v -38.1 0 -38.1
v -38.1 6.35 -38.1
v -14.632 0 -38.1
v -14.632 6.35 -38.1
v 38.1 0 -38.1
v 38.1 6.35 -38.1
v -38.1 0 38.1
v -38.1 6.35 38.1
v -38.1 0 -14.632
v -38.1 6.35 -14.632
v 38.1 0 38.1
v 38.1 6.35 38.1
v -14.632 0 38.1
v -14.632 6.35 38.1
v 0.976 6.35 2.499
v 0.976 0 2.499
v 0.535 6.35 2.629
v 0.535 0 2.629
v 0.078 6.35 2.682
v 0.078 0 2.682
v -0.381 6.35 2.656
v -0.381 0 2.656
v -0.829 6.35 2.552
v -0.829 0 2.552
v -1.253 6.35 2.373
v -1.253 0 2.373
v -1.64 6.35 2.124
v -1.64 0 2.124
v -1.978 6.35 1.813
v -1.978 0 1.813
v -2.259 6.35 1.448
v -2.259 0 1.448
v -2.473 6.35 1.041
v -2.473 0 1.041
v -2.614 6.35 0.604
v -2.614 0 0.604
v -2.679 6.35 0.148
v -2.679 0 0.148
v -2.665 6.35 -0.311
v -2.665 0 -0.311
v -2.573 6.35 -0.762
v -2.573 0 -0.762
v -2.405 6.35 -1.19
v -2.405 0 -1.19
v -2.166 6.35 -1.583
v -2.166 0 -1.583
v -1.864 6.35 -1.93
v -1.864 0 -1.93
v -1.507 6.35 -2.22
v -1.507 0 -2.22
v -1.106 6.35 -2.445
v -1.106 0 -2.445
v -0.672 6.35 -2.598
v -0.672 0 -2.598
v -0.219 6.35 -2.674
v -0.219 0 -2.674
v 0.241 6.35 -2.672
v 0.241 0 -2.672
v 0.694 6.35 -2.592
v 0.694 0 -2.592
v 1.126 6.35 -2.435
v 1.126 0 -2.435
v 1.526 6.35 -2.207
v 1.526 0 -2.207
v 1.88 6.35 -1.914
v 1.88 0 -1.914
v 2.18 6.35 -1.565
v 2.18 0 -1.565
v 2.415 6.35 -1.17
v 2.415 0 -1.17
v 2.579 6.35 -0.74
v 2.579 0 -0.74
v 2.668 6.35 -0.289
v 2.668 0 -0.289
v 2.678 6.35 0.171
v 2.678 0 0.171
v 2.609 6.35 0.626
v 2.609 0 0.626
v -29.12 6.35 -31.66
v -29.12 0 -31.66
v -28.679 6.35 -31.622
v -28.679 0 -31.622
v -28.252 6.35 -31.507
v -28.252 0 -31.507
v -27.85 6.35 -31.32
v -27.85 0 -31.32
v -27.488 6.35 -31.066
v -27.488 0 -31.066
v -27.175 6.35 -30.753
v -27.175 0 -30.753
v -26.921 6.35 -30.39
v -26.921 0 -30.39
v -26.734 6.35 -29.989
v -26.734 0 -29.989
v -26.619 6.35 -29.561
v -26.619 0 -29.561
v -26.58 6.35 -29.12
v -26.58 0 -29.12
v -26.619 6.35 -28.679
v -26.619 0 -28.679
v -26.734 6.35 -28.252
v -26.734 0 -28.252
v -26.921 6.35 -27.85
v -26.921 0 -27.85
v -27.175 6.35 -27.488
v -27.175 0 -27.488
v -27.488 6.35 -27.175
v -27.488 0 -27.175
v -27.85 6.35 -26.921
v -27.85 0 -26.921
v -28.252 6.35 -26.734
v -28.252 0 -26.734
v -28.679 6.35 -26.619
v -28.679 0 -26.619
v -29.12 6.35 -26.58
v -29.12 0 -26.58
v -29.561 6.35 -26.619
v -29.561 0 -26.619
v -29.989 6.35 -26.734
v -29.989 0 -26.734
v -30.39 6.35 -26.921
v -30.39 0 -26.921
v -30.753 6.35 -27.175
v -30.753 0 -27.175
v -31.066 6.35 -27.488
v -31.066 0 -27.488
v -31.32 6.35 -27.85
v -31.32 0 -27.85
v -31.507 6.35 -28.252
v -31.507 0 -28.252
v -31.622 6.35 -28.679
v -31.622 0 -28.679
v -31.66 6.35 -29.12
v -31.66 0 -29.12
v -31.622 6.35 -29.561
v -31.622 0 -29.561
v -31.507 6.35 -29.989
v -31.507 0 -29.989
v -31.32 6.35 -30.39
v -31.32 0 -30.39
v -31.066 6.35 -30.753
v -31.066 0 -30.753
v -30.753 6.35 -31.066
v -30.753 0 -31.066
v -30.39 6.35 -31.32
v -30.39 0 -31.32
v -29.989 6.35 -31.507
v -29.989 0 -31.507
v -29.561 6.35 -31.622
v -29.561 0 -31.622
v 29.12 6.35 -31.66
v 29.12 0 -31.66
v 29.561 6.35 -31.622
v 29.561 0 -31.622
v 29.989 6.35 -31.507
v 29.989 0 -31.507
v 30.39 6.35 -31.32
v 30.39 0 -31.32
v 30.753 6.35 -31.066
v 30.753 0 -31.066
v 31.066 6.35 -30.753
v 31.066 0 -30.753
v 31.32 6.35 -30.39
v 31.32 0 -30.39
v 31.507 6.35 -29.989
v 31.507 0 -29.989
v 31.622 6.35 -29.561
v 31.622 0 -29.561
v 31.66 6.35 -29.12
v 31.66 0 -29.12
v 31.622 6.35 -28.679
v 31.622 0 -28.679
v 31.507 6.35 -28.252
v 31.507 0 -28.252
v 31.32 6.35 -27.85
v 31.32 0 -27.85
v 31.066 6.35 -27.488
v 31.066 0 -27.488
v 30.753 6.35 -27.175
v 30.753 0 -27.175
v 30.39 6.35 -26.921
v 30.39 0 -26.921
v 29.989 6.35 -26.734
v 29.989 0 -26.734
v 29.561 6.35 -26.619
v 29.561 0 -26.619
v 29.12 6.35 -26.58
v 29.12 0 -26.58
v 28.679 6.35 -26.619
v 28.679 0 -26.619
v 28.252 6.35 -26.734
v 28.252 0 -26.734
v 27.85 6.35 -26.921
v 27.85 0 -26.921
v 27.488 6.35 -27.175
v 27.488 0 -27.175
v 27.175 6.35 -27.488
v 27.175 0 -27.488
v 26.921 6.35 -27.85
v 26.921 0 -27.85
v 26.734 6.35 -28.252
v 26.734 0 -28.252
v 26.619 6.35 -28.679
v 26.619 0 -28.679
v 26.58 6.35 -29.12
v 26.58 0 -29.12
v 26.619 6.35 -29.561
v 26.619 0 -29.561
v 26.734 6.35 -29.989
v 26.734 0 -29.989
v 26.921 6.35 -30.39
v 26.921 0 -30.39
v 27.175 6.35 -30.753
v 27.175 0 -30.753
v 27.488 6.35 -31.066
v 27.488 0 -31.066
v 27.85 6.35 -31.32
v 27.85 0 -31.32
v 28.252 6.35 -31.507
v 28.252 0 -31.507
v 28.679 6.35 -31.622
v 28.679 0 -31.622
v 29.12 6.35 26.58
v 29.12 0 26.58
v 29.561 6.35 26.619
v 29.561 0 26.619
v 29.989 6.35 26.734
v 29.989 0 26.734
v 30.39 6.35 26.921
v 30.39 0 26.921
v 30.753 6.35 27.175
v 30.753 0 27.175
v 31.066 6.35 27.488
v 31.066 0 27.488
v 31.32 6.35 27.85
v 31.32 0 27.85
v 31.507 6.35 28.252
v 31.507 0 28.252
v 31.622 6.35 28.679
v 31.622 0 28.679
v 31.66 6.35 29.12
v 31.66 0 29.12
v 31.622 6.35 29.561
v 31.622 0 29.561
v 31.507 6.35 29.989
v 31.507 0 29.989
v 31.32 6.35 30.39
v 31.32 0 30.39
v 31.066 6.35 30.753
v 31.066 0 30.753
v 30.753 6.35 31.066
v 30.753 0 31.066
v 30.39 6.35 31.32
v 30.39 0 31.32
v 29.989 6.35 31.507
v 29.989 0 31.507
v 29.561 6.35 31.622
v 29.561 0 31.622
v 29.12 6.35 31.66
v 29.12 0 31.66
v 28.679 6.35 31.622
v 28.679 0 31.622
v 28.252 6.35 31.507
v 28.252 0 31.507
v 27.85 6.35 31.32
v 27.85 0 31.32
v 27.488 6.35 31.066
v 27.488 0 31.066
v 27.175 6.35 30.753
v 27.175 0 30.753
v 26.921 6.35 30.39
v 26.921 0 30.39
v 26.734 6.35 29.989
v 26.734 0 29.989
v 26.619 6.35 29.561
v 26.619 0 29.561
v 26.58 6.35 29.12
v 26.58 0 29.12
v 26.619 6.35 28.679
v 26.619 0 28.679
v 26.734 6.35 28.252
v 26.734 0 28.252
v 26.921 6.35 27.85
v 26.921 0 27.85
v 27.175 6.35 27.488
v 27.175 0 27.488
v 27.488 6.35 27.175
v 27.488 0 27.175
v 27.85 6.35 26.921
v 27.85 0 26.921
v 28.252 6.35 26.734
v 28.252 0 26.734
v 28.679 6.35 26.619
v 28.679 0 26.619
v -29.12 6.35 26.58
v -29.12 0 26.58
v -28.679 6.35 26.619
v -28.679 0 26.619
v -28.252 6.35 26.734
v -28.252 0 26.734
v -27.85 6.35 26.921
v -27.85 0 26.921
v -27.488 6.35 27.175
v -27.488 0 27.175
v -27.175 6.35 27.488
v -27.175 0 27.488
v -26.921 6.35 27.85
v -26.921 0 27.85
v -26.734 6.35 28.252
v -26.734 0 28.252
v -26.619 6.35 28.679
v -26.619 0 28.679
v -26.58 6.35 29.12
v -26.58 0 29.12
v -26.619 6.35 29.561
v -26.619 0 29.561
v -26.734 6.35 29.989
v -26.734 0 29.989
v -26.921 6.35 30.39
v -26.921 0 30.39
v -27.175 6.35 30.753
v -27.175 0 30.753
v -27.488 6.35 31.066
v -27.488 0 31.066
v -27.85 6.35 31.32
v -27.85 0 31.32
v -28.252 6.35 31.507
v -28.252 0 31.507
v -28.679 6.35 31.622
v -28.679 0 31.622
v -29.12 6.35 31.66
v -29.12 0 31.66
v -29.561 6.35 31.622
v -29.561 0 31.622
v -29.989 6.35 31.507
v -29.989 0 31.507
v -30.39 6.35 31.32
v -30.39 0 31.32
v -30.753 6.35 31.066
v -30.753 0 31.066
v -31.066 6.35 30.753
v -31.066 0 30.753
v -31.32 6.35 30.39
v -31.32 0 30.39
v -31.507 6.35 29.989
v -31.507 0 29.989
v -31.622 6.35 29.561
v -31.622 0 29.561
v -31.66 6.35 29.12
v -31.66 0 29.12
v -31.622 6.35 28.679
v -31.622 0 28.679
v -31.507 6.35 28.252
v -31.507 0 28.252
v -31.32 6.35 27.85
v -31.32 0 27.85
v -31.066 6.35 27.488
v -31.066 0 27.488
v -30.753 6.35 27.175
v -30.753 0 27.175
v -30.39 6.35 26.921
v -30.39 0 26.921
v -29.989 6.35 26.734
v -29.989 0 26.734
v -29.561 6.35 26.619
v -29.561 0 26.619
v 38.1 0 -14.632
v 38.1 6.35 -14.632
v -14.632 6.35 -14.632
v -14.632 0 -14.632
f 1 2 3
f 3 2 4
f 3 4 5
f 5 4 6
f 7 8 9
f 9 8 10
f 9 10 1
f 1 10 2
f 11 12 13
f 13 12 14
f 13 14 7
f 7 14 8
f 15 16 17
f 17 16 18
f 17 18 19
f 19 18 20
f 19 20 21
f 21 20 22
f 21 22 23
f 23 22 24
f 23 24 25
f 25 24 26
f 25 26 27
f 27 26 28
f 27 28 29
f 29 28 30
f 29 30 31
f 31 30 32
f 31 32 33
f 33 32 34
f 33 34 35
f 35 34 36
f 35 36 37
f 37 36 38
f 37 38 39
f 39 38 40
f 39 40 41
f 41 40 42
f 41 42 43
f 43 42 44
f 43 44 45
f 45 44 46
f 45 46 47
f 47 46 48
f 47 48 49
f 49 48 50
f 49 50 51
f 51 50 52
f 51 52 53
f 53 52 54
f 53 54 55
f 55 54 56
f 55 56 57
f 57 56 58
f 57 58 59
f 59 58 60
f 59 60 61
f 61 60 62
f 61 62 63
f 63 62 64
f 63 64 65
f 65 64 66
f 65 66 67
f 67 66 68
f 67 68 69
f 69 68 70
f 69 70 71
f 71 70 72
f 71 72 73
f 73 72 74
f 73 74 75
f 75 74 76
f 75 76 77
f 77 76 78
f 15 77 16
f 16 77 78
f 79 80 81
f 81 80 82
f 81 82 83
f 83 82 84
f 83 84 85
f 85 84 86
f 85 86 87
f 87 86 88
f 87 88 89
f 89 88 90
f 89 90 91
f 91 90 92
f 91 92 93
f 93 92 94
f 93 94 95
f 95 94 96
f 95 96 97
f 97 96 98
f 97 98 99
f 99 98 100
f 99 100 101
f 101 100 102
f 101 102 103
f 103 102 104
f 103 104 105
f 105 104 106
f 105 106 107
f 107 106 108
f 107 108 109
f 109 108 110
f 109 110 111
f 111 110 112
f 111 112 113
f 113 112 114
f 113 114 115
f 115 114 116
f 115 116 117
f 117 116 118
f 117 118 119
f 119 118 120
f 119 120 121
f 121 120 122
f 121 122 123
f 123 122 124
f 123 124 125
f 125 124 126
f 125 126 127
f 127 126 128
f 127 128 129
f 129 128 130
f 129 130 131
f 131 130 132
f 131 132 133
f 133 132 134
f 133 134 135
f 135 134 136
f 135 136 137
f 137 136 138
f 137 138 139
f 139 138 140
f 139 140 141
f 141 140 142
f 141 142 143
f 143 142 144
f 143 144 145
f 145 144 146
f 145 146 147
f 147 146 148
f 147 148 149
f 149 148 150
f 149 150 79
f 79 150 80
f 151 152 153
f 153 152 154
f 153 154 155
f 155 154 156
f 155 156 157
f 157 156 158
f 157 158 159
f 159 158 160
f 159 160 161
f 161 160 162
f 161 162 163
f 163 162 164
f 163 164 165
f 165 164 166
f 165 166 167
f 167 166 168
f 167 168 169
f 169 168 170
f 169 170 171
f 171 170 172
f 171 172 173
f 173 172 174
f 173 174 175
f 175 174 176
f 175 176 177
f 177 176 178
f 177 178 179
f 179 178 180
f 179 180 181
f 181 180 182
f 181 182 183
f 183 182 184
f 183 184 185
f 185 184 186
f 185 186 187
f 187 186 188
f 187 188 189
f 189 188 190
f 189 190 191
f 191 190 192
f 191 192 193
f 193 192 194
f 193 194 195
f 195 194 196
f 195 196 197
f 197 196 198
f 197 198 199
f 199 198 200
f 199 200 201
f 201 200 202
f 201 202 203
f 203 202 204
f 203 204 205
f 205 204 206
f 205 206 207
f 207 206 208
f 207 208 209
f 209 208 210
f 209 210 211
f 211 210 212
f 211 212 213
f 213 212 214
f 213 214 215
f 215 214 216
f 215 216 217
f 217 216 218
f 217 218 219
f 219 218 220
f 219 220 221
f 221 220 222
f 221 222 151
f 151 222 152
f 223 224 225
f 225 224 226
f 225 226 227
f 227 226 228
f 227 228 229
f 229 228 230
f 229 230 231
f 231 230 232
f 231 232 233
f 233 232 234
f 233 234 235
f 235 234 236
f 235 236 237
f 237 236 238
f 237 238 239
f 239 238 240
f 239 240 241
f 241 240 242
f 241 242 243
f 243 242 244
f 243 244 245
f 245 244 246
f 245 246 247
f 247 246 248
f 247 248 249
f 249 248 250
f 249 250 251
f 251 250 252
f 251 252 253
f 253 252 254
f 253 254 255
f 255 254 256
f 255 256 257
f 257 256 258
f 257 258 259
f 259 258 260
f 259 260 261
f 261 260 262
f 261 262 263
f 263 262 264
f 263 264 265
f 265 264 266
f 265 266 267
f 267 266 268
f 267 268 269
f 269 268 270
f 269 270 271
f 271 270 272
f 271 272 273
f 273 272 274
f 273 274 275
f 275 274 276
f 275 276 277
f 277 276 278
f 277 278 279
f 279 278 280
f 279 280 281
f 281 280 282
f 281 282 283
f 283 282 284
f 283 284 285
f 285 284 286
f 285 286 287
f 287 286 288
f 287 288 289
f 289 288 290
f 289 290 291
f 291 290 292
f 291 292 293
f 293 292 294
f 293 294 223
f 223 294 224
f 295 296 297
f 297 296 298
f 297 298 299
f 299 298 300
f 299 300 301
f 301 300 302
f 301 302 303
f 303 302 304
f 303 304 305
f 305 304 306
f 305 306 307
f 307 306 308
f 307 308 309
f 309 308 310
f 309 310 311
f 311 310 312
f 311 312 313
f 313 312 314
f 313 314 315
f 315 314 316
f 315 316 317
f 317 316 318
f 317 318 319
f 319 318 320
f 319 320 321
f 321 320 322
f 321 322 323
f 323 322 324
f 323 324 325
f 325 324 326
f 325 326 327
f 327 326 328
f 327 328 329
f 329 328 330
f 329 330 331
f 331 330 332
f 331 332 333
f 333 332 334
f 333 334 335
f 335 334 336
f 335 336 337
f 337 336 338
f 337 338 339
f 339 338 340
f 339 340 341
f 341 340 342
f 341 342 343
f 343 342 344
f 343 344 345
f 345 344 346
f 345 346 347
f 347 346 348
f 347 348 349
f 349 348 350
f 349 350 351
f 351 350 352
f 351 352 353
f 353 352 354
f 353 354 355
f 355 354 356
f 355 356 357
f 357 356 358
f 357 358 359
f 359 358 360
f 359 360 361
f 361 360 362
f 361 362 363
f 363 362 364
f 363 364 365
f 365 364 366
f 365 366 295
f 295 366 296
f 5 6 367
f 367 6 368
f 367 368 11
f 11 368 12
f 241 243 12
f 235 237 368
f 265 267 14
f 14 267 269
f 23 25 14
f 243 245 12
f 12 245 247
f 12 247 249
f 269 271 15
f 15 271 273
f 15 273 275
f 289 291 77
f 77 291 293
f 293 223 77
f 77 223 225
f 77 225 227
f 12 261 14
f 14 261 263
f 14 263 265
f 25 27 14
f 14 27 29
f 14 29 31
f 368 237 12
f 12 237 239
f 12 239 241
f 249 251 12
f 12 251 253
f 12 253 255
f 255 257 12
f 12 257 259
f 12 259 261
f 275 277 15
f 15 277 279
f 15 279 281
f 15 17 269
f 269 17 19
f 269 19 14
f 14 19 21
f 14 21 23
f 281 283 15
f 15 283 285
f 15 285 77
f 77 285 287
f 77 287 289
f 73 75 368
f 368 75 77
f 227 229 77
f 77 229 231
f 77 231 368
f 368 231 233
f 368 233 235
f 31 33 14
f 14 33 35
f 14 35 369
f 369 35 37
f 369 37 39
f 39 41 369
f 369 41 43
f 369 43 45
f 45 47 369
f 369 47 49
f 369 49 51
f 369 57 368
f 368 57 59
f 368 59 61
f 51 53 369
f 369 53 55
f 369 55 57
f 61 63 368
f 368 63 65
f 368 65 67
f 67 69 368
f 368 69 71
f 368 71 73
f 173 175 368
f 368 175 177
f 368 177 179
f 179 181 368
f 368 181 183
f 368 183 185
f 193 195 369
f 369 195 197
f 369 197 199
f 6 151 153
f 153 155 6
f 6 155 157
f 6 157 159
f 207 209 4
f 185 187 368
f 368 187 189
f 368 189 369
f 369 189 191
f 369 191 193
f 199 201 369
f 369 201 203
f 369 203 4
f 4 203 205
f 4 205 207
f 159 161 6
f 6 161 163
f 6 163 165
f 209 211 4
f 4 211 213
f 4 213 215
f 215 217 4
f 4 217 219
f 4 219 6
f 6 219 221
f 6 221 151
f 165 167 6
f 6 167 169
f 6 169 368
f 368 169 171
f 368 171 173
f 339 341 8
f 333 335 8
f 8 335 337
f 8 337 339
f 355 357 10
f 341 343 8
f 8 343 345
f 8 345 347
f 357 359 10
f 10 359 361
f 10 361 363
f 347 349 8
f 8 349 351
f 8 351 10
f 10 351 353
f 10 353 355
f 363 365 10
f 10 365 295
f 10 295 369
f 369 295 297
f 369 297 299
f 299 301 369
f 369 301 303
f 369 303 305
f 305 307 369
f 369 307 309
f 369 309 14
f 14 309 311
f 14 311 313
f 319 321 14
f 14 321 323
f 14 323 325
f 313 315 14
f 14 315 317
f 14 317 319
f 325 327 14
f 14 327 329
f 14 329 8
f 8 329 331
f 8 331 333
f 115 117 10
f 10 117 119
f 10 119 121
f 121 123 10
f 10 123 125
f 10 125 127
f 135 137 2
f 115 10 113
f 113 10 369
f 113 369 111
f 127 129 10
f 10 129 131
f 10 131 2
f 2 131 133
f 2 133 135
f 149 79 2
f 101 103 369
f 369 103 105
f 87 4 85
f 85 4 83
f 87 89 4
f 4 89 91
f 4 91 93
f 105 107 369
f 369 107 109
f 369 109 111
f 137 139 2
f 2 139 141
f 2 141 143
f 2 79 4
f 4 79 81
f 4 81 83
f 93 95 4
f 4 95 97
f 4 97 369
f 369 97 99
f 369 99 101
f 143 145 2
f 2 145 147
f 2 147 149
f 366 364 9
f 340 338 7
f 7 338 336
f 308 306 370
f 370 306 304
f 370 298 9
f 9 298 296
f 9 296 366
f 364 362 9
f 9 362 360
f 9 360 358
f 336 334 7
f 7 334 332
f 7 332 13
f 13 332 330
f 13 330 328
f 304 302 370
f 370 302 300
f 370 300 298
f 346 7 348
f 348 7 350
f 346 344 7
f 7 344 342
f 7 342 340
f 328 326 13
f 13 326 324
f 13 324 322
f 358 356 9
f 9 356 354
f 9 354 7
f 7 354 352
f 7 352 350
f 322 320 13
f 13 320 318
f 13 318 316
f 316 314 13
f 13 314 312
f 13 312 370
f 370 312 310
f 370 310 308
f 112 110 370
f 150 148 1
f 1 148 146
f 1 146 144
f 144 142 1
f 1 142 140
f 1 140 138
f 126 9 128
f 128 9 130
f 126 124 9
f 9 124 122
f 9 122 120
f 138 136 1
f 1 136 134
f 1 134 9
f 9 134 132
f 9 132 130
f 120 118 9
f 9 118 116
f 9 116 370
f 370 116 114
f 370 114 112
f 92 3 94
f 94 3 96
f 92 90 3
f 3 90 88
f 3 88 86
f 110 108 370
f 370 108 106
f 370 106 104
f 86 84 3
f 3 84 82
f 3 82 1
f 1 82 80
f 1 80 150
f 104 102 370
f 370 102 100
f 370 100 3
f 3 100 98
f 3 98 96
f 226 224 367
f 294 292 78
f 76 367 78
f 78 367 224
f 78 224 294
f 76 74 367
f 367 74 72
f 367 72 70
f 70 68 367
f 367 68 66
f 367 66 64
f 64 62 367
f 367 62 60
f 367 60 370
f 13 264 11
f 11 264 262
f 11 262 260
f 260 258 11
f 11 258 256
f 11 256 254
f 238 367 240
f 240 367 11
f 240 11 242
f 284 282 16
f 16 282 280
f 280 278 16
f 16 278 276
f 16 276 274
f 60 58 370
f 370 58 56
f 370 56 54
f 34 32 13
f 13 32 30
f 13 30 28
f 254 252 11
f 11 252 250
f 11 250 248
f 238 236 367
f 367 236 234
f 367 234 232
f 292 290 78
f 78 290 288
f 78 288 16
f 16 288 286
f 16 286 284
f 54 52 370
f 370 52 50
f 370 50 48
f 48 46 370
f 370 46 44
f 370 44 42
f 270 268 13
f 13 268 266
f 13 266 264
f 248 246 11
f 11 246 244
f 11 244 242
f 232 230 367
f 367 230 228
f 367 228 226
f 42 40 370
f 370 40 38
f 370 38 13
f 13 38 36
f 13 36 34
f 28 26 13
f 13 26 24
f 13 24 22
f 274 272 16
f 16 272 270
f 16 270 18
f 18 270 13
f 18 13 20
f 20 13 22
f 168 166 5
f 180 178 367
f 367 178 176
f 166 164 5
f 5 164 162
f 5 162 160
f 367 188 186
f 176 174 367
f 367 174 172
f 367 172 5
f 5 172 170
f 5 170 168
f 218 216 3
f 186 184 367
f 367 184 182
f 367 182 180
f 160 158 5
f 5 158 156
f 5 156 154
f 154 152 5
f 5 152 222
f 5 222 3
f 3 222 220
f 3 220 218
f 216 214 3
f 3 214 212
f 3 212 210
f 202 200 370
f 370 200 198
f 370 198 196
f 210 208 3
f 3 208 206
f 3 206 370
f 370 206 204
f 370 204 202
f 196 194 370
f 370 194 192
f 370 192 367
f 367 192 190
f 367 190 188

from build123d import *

# Parameters (mm, degrees)
SKETCH1_W           = 76.2
SKETCH1_H           = 76.2
SKETCH1_R           = 2.54
BOSS_EXTRUDE1_DEPTH = 6.35


with BuildPart() as part:
    # Sketch1 → Boss-Extrude1 (new body)
    with BuildSketch(Plane(origin=(0, 0, 0), x_dir=(1, 0, 0), z_dir=(0, 1, 0))):
        Rectangle(SKETCH1_W, SKETCH1_H)
        with BuildLine():
            Line((2.609105575, -0.625751054), (0.975970434, -2.4992955))
            ThreePointArc((0.975970434, -2.4992955), (-2.022556476, 1.763026259), (2.609105575, -0.625751054))
        make_face(mode=Mode.SUBTRACT)
        with Locations(Location((-29.120418144, -29.120418144, 0), (0, 0, 270))):
            Circle(SKETCH1_R, mode=Mode.SUBTRACT)
        with Locations(Location((29.120418144, 29.120418144, 0), (0, 0, 270))):
            Circle(SKETCH1_R, mode=Mode.SUBTRACT)
        with Locations(Location((29.120418144, -29.120418144, 0), (0, 0, 270))):
            Circle(SKETCH1_R, mode=Mode.SUBTRACT)
        with Locations(Location((-29.120418144, 29.120418144, 0), (0, 0, 270))):
            Circle(SKETCH1_R, mode=Mode.SUBTRACT)
    extrude(amount=BOSS_EXTRUDE1_DEPTH)


solid = part.part
